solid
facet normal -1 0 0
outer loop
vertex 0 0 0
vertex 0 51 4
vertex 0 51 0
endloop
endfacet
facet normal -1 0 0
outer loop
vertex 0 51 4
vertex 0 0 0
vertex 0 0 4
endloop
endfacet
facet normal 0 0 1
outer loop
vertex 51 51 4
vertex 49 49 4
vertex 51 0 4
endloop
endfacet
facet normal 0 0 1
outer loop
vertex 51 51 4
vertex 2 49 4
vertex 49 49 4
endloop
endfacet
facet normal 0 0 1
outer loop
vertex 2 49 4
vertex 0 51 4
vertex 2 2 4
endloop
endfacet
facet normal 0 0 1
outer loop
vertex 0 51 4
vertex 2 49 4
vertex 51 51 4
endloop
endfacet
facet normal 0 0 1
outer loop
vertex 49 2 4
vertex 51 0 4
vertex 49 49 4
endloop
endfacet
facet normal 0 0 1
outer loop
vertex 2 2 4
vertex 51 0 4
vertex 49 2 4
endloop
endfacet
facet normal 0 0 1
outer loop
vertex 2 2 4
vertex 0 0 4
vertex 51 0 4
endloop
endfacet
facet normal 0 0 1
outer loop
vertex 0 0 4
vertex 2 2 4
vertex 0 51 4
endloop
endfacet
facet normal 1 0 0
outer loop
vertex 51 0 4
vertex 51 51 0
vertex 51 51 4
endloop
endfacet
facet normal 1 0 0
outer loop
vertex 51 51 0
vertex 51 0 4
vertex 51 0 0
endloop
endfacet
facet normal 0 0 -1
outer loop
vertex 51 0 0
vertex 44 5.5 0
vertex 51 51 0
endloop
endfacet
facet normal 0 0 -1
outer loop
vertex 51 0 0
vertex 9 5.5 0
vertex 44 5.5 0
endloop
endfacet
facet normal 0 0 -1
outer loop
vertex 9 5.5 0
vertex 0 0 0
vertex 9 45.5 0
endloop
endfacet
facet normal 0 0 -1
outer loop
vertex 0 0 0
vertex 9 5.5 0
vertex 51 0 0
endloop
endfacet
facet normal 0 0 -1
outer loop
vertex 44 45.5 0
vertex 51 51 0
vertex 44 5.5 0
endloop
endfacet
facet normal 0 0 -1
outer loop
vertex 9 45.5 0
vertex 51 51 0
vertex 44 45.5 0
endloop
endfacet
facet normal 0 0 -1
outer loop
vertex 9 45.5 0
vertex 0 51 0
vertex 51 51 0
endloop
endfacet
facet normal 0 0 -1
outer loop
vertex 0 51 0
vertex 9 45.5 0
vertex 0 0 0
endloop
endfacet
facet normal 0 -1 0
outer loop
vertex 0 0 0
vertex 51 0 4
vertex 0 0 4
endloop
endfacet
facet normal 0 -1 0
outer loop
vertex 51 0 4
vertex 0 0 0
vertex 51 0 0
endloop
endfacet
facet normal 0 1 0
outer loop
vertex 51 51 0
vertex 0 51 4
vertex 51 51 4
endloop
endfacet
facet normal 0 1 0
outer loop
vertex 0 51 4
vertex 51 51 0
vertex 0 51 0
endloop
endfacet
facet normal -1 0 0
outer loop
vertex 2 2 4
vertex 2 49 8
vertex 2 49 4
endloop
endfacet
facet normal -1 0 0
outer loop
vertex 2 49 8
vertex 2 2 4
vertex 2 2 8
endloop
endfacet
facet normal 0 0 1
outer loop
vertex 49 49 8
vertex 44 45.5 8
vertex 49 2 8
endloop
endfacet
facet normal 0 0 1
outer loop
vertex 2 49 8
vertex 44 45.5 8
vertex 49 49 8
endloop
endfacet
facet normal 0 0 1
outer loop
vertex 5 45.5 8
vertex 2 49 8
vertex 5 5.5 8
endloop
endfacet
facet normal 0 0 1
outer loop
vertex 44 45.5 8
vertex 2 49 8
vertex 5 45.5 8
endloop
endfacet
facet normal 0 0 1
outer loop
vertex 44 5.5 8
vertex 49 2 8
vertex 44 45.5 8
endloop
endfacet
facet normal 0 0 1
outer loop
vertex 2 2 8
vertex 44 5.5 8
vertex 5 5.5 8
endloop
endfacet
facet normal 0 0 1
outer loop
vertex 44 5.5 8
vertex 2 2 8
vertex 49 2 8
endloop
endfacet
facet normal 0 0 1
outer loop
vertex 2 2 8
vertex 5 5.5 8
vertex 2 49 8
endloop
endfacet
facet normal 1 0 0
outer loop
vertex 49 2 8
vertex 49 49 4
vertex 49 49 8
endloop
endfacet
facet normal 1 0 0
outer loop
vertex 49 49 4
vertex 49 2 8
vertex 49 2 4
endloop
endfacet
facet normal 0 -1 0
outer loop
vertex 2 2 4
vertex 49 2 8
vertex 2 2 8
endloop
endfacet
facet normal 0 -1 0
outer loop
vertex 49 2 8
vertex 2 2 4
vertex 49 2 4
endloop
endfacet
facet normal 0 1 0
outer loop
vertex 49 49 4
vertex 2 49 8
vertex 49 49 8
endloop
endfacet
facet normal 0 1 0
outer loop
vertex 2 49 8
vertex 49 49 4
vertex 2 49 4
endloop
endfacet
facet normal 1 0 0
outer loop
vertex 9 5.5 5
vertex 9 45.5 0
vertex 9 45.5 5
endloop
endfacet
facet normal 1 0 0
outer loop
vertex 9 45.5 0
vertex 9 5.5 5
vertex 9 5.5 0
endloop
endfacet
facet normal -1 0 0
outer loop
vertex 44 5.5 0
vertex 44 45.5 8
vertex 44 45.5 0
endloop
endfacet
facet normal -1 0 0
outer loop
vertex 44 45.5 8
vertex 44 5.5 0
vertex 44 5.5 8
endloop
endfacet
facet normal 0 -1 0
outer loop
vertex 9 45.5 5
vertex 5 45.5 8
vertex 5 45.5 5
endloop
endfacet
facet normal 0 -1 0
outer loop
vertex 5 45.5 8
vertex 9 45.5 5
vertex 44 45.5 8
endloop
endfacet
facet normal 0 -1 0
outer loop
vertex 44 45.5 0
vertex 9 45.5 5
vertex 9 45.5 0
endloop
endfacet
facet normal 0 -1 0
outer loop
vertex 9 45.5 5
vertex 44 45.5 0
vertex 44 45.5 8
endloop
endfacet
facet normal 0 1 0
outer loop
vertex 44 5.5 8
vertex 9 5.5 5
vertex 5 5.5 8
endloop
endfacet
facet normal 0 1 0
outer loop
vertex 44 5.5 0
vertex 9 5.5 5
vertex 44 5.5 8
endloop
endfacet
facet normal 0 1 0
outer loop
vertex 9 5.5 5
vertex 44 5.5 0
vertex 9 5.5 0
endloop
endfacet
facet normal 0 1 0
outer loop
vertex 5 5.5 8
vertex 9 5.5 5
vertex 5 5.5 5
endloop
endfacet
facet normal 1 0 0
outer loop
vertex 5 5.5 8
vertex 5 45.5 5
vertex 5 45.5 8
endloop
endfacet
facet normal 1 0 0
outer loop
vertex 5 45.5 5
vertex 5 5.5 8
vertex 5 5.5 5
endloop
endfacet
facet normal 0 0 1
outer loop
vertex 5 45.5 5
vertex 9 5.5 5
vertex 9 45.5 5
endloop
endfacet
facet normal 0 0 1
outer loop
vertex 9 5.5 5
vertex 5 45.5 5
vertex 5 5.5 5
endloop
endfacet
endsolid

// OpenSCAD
// AirBox cap
// All numbers are supposed to be millimeters.

outer_size = 51;
inner_size = 43;
disp_size = 47;
wall_size = (outer_size - inner_size) / 2;

usb_x = 10;
usb_y = 7.5;

disp_inner_x = 35;
disp_inner_y = 40;

difference() {
    union() {
        cube([outer_size, outer_size, wall_size], center=false);
        translate([wall_size / 2, wall_size / 2, wall_size]) {
            cube([disp_size, disp_size, wall_size], center=false);
        }
    }
    translate([wall_size + 5, (outer_size - disp_inner_y) / 2, -20]) {
        cube(size=[disp_inner_x, disp_inner_y, 40], center=false);
    }
    translate([wall_size + 1, (outer_size - disp_inner_y) / 2, wall_size + 1]) {
        cube(size=[7, disp_inner_y, 5], center=false);
    }
}

echo(version=version());

// Written by Alexey Kondratov <kondratov.aleksey@gmail.com>
